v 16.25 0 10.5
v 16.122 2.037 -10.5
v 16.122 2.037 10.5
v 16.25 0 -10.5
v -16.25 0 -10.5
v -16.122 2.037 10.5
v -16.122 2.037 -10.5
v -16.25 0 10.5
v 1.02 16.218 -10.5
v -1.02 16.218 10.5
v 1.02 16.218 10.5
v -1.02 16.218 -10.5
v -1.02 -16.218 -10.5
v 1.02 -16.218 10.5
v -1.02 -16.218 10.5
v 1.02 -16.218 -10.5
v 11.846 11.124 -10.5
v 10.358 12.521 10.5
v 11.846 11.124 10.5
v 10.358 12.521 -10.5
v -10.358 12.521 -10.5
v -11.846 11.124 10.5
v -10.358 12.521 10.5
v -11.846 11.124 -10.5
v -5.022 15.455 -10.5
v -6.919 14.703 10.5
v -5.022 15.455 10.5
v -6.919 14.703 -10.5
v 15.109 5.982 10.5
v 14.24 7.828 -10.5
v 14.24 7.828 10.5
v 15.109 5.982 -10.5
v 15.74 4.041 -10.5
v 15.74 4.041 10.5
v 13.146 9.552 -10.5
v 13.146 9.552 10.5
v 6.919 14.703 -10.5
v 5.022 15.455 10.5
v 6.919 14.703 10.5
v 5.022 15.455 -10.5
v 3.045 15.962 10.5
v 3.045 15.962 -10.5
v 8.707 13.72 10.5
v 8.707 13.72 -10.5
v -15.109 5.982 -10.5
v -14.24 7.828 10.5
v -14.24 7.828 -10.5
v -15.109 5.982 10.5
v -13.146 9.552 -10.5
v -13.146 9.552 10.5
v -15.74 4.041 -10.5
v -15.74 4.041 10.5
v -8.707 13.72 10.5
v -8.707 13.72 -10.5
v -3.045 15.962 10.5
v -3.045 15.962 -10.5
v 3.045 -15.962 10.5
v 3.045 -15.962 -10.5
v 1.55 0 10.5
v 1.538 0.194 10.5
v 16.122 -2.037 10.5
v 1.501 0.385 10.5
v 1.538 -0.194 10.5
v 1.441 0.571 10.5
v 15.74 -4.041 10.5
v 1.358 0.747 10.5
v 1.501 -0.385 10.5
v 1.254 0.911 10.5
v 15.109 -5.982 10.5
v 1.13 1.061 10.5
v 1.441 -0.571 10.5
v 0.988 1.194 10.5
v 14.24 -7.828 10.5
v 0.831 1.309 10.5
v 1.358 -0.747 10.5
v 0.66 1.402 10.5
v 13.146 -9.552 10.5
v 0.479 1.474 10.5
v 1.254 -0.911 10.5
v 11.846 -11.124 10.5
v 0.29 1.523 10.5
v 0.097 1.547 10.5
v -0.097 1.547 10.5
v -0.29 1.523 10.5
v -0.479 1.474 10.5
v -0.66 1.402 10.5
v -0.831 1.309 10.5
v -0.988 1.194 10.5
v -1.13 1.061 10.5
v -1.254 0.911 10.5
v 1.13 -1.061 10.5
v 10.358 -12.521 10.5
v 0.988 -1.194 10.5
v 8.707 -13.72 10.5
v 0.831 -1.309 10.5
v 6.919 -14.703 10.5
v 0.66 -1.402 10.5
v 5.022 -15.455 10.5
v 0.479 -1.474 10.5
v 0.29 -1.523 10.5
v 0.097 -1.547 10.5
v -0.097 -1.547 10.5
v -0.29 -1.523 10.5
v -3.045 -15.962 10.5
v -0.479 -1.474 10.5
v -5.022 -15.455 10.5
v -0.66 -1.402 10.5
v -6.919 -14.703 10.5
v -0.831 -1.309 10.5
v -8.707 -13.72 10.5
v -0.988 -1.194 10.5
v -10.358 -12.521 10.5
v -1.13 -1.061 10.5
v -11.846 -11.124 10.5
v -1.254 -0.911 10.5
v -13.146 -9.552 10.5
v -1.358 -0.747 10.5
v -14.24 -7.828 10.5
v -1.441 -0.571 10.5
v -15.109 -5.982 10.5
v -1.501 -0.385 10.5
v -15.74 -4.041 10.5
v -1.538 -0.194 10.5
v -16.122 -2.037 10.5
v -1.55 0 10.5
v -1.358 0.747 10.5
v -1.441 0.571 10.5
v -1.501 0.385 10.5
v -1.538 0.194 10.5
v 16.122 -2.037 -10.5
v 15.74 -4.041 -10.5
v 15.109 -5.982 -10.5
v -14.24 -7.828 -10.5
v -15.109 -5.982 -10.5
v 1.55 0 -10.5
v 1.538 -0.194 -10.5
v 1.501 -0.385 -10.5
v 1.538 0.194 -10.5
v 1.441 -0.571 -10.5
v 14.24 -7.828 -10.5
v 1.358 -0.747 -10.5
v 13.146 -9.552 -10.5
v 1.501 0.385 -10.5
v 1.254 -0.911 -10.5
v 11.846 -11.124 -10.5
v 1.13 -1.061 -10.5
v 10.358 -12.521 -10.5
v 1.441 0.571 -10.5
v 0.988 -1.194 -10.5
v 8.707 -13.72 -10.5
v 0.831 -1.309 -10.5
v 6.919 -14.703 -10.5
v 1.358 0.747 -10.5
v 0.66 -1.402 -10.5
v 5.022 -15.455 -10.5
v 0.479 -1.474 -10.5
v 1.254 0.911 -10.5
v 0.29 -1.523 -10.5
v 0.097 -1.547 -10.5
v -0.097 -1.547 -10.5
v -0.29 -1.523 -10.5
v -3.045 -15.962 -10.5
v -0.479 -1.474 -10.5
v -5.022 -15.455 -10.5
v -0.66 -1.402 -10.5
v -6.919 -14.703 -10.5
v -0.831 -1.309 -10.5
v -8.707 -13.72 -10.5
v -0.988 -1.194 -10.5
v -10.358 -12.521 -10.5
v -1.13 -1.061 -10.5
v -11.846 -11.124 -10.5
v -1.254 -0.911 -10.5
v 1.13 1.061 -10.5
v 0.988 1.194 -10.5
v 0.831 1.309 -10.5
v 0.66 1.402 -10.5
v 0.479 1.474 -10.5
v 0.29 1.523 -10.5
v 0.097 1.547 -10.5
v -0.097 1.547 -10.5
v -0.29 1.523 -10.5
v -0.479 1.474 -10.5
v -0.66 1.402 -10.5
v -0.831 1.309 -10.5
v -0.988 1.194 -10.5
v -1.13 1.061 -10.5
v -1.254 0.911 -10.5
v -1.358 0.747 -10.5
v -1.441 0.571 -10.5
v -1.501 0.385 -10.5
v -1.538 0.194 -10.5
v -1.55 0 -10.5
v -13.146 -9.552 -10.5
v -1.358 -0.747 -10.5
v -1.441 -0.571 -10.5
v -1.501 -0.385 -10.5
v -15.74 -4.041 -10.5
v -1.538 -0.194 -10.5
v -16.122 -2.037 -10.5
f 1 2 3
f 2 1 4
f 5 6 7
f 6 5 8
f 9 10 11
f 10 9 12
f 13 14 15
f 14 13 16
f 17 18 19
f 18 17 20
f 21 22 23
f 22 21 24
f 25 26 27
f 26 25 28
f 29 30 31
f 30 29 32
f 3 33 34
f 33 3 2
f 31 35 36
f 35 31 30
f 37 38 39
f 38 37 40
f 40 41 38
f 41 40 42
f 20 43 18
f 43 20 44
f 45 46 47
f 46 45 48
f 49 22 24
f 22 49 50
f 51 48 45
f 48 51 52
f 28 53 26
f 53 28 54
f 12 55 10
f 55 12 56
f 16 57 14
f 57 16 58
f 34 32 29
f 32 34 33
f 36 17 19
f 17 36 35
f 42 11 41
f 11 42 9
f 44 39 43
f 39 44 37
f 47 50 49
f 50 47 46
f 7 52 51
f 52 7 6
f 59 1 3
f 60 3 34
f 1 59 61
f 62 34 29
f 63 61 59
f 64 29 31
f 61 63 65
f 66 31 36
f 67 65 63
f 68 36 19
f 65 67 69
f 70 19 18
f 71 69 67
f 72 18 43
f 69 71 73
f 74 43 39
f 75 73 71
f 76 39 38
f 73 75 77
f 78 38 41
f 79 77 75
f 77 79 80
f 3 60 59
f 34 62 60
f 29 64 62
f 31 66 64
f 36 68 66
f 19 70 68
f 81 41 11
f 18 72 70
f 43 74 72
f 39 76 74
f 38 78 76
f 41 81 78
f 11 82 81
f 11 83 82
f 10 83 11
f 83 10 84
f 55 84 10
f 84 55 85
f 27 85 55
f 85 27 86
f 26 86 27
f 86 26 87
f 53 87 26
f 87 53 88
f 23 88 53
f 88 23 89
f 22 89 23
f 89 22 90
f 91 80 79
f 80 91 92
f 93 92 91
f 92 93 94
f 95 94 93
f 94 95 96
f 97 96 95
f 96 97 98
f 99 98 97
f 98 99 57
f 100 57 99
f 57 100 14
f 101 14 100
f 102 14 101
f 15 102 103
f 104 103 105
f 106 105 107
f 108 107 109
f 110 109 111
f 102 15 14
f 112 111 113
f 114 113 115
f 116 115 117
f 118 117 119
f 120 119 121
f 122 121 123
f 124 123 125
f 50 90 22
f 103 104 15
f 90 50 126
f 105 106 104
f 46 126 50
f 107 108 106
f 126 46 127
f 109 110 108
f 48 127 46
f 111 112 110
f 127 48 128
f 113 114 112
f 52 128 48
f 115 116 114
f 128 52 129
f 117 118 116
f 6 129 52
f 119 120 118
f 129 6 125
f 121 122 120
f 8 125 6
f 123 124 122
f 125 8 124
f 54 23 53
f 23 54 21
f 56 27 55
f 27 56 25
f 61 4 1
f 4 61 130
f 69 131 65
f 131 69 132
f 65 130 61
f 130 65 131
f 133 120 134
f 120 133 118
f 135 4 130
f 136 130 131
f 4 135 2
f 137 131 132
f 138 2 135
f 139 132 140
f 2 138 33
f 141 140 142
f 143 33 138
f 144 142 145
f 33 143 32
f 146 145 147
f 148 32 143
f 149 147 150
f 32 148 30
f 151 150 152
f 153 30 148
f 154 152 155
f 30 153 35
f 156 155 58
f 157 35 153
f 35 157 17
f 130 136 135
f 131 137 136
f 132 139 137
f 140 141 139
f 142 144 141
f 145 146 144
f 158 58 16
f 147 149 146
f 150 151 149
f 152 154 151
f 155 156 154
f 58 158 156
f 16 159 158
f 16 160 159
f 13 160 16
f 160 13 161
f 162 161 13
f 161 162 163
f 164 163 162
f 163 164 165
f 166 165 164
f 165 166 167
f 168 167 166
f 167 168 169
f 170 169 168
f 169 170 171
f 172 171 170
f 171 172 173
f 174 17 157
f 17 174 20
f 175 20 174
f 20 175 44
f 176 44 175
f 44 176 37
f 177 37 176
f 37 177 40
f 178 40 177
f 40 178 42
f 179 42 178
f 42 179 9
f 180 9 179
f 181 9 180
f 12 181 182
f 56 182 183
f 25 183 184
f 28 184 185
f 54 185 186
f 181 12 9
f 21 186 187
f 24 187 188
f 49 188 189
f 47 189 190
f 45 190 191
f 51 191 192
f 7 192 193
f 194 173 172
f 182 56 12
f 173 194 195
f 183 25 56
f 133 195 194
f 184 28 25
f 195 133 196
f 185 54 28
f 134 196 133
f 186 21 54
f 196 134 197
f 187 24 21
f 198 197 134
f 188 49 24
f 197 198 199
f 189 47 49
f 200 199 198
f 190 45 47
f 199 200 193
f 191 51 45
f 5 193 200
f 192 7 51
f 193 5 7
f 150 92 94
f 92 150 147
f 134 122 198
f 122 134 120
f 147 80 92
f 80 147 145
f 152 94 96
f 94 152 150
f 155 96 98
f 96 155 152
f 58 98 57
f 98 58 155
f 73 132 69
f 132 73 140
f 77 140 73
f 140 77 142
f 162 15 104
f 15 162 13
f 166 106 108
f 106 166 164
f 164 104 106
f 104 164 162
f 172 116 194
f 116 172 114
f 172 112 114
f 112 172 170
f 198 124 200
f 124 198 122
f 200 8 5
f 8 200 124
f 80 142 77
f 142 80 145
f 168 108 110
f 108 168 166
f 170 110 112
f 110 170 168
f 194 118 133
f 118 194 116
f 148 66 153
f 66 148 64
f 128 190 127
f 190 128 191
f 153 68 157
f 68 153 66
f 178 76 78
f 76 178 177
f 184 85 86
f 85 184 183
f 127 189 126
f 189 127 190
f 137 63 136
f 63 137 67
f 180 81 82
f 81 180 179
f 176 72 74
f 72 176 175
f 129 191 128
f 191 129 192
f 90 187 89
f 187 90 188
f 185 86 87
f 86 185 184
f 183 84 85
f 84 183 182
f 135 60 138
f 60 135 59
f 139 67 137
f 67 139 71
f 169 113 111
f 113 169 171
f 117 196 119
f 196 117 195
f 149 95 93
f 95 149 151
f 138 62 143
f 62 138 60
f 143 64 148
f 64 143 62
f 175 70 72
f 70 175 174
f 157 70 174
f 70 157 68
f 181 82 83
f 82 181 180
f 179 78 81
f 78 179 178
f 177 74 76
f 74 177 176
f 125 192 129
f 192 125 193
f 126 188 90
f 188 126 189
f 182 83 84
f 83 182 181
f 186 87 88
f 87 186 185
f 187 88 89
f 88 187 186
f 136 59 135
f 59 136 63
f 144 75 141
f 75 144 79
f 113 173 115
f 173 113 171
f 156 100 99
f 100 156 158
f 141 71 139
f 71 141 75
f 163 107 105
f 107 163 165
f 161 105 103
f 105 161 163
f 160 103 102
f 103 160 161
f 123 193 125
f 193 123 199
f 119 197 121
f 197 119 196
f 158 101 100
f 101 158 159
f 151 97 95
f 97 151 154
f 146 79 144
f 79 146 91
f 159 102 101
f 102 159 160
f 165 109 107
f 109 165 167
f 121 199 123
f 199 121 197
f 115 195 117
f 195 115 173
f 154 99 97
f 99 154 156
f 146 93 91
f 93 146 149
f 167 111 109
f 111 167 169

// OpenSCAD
$fn = 50;


difference() {
	union() {
		translate(v = [0, 0, -10.5000000000]) {
			cylinder(h = 21, r = 16.2500000000);
		}
	}
	union() {
		translate(v = [0, 0, -100.0000000000]) {
			cylinder(h = 200, r = 1.5500000000);
		}
	}
}
